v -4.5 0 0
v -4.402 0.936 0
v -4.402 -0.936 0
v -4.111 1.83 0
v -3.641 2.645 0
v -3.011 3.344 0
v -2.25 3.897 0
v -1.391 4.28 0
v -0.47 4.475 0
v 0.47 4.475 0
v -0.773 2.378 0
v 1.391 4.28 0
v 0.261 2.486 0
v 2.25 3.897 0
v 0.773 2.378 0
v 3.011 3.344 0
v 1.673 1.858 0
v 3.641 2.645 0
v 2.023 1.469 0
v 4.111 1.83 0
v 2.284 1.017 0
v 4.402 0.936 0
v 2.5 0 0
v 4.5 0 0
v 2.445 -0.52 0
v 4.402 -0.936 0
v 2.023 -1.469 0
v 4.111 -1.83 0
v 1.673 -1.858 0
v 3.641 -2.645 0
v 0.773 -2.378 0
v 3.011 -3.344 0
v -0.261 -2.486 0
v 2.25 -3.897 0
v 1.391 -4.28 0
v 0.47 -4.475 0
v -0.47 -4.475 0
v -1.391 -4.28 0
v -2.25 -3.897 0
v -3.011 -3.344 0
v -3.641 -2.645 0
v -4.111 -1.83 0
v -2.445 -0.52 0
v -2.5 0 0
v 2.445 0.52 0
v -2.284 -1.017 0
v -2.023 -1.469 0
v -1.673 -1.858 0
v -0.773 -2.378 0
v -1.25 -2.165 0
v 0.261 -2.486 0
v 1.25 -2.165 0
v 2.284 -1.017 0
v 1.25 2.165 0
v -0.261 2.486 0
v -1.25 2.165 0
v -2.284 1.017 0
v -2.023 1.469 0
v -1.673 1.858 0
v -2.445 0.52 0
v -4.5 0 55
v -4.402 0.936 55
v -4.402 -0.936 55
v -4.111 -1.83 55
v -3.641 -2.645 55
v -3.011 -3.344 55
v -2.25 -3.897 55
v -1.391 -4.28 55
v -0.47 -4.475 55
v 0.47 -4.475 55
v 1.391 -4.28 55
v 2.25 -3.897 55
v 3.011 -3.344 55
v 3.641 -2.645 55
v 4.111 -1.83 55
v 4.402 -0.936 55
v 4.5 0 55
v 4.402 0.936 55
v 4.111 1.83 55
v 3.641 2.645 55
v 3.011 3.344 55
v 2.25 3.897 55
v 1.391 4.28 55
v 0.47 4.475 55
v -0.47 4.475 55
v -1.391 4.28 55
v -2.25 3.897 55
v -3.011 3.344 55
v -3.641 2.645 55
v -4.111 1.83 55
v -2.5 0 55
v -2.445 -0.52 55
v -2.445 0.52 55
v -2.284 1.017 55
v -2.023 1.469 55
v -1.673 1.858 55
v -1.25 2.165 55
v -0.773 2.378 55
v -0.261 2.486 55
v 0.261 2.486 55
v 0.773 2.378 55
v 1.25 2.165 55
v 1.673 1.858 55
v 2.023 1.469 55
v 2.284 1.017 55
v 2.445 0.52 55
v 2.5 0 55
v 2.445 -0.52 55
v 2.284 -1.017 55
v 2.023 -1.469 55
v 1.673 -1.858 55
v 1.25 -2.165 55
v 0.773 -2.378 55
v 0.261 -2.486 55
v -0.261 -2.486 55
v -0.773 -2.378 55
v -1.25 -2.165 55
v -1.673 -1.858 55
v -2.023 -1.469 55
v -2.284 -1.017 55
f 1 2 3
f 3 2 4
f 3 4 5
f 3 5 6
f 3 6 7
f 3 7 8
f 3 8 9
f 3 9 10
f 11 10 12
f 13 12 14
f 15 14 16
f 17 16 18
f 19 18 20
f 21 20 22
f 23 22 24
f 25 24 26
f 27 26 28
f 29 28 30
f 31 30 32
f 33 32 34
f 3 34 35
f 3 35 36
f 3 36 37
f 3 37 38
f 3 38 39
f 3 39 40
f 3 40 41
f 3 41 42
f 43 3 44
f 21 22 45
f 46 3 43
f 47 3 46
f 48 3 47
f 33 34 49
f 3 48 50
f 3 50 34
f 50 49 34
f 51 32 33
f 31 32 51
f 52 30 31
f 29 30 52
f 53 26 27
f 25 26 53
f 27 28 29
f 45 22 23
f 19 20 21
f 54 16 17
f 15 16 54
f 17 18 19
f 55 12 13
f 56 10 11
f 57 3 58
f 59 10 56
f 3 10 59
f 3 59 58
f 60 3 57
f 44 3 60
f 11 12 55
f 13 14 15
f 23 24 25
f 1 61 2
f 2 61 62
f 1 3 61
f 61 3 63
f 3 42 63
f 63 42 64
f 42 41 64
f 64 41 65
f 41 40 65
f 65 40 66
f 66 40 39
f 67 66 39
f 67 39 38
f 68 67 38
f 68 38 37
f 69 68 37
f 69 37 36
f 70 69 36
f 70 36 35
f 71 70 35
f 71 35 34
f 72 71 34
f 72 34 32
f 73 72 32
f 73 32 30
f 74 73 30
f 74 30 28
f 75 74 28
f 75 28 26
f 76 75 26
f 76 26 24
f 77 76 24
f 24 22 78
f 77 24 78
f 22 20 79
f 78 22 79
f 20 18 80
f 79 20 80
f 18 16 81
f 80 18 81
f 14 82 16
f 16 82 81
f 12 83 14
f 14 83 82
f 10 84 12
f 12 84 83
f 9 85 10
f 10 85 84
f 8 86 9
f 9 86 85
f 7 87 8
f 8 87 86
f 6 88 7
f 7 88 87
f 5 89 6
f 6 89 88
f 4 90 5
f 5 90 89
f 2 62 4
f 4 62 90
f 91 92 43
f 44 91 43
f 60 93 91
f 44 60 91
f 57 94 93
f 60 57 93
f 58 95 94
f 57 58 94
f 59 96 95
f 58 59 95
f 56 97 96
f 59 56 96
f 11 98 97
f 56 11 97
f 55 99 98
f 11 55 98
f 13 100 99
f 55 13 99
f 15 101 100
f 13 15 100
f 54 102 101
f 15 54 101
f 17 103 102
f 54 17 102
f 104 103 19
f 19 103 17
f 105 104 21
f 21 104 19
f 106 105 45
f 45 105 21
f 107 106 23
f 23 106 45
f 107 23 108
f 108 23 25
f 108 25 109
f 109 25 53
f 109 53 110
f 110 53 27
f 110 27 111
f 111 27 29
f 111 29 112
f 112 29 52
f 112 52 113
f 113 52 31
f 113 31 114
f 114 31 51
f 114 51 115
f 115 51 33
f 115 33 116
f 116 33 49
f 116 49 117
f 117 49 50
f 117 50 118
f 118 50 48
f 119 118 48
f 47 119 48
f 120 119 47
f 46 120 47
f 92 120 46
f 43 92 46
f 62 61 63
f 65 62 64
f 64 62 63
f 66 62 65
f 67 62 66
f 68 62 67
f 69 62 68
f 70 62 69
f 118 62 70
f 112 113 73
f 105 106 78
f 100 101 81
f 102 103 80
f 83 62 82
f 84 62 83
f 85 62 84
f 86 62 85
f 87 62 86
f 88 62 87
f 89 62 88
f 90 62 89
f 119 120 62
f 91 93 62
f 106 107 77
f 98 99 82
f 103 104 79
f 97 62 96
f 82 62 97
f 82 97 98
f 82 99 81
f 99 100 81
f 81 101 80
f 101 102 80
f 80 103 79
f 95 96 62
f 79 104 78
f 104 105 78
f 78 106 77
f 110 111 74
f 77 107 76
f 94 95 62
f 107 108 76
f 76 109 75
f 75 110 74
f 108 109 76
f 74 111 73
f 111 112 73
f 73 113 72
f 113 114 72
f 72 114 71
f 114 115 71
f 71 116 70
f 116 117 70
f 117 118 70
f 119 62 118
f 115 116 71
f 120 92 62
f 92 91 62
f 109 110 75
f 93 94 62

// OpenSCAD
$fn=30;
difference() {
    cylinder( r=4.5, h=55 );
    cylinder( r=2.5, h=60);
};
